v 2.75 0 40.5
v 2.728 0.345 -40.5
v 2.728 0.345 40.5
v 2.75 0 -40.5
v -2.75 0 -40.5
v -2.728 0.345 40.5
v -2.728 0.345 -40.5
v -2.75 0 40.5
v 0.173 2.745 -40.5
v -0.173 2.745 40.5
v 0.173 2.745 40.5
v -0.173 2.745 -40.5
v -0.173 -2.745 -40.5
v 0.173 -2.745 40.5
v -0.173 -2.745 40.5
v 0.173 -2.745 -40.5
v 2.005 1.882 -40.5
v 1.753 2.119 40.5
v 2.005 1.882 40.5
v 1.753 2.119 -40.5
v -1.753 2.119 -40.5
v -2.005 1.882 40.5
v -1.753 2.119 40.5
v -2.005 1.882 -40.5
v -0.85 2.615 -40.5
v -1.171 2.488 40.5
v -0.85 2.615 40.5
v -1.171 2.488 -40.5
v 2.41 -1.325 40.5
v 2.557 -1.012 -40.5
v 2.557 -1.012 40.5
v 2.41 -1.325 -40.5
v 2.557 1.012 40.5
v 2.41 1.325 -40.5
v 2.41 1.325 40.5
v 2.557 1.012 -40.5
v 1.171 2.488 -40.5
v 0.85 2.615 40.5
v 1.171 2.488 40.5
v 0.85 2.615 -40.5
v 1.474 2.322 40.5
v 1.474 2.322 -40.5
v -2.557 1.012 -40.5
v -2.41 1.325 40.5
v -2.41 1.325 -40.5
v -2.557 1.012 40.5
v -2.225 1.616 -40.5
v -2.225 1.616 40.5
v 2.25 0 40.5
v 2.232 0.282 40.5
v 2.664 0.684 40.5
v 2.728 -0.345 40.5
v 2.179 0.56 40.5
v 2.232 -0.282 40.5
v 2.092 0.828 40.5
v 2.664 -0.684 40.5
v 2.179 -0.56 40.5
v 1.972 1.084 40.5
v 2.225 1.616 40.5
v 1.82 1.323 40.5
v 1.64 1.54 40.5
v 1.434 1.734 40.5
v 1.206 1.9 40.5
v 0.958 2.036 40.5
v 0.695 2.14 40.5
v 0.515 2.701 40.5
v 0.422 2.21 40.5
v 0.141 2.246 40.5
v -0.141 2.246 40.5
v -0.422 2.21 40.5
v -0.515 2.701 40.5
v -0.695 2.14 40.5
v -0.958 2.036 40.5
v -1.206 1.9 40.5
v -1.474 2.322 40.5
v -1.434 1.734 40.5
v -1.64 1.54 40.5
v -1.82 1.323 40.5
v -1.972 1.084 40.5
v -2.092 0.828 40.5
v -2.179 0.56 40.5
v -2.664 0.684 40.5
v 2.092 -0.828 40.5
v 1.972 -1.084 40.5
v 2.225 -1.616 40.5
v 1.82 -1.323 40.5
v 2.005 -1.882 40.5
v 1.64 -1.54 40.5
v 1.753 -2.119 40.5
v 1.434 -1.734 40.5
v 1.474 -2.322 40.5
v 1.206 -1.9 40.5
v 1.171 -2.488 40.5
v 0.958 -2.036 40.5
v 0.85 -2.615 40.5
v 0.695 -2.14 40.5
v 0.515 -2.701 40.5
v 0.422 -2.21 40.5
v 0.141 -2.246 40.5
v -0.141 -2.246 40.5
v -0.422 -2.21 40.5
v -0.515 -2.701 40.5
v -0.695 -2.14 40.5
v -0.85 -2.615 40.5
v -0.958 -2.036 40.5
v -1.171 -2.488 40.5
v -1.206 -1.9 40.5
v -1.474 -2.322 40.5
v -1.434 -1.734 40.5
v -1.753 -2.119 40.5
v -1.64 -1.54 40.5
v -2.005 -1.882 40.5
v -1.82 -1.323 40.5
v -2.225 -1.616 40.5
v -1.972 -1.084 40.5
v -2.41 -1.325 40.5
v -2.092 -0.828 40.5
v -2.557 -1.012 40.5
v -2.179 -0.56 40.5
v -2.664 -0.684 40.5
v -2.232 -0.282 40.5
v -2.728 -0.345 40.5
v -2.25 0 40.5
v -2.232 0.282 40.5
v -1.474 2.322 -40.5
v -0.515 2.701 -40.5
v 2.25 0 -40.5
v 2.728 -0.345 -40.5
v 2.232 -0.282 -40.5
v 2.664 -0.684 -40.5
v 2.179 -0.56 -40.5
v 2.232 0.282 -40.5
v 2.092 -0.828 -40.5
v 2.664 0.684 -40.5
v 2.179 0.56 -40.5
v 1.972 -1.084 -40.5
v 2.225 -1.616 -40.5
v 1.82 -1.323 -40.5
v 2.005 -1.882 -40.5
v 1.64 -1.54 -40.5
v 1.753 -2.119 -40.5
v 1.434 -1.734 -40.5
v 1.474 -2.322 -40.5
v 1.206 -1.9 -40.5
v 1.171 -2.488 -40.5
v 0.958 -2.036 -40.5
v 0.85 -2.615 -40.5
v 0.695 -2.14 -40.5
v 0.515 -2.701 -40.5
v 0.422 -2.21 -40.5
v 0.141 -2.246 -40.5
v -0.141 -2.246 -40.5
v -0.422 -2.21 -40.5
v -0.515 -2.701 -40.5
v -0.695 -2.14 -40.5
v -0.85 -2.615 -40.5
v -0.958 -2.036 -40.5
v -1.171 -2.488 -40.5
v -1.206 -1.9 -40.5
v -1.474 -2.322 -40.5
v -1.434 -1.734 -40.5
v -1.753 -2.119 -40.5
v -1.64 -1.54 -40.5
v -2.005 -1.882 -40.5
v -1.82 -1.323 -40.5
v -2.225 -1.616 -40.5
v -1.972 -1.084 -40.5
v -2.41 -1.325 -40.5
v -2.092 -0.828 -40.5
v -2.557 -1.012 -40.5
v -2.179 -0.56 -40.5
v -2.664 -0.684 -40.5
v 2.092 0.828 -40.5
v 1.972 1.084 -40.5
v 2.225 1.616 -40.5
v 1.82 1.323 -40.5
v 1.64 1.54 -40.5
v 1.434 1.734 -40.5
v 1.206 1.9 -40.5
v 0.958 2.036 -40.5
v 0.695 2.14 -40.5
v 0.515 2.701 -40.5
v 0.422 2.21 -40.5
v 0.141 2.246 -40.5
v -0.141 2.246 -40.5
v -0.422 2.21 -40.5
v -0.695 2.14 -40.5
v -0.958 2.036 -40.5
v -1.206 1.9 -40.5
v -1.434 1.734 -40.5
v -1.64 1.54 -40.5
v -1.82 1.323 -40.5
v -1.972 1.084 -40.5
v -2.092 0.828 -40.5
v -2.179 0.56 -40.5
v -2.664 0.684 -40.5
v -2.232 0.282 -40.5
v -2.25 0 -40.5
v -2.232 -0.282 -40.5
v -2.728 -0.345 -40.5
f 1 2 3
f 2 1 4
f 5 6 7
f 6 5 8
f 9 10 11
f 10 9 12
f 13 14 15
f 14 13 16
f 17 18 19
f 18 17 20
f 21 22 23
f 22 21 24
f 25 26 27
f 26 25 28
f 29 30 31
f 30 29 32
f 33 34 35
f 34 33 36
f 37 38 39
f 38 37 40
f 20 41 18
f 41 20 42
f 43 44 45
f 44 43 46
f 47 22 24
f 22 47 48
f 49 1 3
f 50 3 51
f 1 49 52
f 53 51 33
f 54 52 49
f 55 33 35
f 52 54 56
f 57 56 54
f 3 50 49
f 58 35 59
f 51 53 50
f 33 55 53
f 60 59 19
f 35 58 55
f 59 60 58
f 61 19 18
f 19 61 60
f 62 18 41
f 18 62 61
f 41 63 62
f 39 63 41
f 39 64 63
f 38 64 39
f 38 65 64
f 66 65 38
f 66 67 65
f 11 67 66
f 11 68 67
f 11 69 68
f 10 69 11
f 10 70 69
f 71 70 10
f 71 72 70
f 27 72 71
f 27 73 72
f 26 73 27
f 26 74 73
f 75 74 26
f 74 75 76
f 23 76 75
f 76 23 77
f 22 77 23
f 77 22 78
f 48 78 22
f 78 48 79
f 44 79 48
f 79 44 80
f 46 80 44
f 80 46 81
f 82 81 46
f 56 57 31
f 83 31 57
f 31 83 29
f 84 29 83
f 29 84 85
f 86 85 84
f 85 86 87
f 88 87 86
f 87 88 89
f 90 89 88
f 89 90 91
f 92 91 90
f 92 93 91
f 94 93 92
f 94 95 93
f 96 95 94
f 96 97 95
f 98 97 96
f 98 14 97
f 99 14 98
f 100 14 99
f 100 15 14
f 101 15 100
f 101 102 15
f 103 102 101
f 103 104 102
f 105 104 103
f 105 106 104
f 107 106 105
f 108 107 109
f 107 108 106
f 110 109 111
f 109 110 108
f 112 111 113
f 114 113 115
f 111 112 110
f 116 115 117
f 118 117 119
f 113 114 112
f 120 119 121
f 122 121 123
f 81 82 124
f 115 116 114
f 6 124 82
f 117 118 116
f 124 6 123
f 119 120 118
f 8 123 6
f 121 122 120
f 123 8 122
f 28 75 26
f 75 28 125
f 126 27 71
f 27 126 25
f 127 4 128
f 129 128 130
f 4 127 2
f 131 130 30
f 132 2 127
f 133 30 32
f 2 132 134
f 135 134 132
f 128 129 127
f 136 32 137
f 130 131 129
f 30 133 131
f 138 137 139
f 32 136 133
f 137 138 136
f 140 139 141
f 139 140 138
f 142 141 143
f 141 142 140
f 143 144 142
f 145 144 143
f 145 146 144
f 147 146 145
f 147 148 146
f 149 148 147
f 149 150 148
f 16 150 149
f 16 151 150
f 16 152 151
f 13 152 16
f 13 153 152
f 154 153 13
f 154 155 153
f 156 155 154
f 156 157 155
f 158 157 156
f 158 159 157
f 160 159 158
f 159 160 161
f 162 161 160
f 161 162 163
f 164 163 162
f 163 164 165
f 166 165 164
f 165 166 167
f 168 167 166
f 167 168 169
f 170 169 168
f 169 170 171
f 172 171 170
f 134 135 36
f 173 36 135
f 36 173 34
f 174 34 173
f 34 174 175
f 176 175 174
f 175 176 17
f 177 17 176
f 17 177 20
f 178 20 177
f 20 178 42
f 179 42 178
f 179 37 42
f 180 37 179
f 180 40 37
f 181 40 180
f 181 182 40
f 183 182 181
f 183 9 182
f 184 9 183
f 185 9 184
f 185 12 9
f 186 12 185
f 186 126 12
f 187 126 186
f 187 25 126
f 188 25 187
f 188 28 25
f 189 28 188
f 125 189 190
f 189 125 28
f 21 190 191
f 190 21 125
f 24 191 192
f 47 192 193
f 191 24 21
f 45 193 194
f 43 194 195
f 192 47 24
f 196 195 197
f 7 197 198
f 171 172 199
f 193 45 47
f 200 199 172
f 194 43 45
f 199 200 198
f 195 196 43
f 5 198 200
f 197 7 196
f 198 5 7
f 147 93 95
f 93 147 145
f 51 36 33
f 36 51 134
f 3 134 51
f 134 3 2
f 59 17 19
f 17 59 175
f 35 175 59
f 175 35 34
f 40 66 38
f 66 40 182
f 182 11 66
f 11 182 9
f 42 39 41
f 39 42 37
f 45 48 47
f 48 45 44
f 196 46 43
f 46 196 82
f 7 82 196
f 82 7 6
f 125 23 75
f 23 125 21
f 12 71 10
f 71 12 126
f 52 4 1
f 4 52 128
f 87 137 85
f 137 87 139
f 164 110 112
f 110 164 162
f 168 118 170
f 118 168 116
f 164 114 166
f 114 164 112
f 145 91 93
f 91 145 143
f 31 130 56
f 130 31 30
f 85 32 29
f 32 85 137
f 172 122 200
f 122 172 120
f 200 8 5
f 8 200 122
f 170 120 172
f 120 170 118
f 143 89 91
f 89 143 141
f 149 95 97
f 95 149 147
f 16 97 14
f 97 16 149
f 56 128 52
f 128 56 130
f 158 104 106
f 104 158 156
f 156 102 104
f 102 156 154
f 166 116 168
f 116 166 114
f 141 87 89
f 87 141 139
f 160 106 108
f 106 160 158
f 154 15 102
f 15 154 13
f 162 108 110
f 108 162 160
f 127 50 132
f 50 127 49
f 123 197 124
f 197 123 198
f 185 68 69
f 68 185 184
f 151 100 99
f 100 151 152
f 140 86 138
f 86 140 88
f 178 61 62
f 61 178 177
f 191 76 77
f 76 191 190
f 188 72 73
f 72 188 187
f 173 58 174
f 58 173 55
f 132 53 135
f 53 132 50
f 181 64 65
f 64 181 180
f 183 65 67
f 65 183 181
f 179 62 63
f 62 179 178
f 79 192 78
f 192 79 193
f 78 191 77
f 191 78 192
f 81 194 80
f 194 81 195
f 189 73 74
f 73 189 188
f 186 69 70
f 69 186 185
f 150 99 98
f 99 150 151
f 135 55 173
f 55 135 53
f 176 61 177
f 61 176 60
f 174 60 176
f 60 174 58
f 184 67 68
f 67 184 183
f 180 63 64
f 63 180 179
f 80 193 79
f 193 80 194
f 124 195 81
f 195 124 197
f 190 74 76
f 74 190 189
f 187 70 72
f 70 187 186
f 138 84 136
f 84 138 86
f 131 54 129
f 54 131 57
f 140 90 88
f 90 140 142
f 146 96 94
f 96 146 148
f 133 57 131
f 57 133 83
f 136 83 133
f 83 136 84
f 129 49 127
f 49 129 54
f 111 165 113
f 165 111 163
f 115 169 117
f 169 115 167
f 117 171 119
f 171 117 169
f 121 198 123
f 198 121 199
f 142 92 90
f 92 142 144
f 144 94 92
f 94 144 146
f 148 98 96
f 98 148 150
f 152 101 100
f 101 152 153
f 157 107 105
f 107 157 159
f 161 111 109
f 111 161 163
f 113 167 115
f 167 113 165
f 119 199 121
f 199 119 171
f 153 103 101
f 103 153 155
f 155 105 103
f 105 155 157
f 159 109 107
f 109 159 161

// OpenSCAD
$fn = 50;


difference() {
	union() {
		translate(v = [0, 0, -40.5000000000]) {
			cylinder(h = 81, r = 2.7500000000);
		}
	}
	union() {
		translate(v = [0, 0, -100.0000000000]) {
			cylinder(h = 200, r = 2.2500000000);
		}
	}
}
